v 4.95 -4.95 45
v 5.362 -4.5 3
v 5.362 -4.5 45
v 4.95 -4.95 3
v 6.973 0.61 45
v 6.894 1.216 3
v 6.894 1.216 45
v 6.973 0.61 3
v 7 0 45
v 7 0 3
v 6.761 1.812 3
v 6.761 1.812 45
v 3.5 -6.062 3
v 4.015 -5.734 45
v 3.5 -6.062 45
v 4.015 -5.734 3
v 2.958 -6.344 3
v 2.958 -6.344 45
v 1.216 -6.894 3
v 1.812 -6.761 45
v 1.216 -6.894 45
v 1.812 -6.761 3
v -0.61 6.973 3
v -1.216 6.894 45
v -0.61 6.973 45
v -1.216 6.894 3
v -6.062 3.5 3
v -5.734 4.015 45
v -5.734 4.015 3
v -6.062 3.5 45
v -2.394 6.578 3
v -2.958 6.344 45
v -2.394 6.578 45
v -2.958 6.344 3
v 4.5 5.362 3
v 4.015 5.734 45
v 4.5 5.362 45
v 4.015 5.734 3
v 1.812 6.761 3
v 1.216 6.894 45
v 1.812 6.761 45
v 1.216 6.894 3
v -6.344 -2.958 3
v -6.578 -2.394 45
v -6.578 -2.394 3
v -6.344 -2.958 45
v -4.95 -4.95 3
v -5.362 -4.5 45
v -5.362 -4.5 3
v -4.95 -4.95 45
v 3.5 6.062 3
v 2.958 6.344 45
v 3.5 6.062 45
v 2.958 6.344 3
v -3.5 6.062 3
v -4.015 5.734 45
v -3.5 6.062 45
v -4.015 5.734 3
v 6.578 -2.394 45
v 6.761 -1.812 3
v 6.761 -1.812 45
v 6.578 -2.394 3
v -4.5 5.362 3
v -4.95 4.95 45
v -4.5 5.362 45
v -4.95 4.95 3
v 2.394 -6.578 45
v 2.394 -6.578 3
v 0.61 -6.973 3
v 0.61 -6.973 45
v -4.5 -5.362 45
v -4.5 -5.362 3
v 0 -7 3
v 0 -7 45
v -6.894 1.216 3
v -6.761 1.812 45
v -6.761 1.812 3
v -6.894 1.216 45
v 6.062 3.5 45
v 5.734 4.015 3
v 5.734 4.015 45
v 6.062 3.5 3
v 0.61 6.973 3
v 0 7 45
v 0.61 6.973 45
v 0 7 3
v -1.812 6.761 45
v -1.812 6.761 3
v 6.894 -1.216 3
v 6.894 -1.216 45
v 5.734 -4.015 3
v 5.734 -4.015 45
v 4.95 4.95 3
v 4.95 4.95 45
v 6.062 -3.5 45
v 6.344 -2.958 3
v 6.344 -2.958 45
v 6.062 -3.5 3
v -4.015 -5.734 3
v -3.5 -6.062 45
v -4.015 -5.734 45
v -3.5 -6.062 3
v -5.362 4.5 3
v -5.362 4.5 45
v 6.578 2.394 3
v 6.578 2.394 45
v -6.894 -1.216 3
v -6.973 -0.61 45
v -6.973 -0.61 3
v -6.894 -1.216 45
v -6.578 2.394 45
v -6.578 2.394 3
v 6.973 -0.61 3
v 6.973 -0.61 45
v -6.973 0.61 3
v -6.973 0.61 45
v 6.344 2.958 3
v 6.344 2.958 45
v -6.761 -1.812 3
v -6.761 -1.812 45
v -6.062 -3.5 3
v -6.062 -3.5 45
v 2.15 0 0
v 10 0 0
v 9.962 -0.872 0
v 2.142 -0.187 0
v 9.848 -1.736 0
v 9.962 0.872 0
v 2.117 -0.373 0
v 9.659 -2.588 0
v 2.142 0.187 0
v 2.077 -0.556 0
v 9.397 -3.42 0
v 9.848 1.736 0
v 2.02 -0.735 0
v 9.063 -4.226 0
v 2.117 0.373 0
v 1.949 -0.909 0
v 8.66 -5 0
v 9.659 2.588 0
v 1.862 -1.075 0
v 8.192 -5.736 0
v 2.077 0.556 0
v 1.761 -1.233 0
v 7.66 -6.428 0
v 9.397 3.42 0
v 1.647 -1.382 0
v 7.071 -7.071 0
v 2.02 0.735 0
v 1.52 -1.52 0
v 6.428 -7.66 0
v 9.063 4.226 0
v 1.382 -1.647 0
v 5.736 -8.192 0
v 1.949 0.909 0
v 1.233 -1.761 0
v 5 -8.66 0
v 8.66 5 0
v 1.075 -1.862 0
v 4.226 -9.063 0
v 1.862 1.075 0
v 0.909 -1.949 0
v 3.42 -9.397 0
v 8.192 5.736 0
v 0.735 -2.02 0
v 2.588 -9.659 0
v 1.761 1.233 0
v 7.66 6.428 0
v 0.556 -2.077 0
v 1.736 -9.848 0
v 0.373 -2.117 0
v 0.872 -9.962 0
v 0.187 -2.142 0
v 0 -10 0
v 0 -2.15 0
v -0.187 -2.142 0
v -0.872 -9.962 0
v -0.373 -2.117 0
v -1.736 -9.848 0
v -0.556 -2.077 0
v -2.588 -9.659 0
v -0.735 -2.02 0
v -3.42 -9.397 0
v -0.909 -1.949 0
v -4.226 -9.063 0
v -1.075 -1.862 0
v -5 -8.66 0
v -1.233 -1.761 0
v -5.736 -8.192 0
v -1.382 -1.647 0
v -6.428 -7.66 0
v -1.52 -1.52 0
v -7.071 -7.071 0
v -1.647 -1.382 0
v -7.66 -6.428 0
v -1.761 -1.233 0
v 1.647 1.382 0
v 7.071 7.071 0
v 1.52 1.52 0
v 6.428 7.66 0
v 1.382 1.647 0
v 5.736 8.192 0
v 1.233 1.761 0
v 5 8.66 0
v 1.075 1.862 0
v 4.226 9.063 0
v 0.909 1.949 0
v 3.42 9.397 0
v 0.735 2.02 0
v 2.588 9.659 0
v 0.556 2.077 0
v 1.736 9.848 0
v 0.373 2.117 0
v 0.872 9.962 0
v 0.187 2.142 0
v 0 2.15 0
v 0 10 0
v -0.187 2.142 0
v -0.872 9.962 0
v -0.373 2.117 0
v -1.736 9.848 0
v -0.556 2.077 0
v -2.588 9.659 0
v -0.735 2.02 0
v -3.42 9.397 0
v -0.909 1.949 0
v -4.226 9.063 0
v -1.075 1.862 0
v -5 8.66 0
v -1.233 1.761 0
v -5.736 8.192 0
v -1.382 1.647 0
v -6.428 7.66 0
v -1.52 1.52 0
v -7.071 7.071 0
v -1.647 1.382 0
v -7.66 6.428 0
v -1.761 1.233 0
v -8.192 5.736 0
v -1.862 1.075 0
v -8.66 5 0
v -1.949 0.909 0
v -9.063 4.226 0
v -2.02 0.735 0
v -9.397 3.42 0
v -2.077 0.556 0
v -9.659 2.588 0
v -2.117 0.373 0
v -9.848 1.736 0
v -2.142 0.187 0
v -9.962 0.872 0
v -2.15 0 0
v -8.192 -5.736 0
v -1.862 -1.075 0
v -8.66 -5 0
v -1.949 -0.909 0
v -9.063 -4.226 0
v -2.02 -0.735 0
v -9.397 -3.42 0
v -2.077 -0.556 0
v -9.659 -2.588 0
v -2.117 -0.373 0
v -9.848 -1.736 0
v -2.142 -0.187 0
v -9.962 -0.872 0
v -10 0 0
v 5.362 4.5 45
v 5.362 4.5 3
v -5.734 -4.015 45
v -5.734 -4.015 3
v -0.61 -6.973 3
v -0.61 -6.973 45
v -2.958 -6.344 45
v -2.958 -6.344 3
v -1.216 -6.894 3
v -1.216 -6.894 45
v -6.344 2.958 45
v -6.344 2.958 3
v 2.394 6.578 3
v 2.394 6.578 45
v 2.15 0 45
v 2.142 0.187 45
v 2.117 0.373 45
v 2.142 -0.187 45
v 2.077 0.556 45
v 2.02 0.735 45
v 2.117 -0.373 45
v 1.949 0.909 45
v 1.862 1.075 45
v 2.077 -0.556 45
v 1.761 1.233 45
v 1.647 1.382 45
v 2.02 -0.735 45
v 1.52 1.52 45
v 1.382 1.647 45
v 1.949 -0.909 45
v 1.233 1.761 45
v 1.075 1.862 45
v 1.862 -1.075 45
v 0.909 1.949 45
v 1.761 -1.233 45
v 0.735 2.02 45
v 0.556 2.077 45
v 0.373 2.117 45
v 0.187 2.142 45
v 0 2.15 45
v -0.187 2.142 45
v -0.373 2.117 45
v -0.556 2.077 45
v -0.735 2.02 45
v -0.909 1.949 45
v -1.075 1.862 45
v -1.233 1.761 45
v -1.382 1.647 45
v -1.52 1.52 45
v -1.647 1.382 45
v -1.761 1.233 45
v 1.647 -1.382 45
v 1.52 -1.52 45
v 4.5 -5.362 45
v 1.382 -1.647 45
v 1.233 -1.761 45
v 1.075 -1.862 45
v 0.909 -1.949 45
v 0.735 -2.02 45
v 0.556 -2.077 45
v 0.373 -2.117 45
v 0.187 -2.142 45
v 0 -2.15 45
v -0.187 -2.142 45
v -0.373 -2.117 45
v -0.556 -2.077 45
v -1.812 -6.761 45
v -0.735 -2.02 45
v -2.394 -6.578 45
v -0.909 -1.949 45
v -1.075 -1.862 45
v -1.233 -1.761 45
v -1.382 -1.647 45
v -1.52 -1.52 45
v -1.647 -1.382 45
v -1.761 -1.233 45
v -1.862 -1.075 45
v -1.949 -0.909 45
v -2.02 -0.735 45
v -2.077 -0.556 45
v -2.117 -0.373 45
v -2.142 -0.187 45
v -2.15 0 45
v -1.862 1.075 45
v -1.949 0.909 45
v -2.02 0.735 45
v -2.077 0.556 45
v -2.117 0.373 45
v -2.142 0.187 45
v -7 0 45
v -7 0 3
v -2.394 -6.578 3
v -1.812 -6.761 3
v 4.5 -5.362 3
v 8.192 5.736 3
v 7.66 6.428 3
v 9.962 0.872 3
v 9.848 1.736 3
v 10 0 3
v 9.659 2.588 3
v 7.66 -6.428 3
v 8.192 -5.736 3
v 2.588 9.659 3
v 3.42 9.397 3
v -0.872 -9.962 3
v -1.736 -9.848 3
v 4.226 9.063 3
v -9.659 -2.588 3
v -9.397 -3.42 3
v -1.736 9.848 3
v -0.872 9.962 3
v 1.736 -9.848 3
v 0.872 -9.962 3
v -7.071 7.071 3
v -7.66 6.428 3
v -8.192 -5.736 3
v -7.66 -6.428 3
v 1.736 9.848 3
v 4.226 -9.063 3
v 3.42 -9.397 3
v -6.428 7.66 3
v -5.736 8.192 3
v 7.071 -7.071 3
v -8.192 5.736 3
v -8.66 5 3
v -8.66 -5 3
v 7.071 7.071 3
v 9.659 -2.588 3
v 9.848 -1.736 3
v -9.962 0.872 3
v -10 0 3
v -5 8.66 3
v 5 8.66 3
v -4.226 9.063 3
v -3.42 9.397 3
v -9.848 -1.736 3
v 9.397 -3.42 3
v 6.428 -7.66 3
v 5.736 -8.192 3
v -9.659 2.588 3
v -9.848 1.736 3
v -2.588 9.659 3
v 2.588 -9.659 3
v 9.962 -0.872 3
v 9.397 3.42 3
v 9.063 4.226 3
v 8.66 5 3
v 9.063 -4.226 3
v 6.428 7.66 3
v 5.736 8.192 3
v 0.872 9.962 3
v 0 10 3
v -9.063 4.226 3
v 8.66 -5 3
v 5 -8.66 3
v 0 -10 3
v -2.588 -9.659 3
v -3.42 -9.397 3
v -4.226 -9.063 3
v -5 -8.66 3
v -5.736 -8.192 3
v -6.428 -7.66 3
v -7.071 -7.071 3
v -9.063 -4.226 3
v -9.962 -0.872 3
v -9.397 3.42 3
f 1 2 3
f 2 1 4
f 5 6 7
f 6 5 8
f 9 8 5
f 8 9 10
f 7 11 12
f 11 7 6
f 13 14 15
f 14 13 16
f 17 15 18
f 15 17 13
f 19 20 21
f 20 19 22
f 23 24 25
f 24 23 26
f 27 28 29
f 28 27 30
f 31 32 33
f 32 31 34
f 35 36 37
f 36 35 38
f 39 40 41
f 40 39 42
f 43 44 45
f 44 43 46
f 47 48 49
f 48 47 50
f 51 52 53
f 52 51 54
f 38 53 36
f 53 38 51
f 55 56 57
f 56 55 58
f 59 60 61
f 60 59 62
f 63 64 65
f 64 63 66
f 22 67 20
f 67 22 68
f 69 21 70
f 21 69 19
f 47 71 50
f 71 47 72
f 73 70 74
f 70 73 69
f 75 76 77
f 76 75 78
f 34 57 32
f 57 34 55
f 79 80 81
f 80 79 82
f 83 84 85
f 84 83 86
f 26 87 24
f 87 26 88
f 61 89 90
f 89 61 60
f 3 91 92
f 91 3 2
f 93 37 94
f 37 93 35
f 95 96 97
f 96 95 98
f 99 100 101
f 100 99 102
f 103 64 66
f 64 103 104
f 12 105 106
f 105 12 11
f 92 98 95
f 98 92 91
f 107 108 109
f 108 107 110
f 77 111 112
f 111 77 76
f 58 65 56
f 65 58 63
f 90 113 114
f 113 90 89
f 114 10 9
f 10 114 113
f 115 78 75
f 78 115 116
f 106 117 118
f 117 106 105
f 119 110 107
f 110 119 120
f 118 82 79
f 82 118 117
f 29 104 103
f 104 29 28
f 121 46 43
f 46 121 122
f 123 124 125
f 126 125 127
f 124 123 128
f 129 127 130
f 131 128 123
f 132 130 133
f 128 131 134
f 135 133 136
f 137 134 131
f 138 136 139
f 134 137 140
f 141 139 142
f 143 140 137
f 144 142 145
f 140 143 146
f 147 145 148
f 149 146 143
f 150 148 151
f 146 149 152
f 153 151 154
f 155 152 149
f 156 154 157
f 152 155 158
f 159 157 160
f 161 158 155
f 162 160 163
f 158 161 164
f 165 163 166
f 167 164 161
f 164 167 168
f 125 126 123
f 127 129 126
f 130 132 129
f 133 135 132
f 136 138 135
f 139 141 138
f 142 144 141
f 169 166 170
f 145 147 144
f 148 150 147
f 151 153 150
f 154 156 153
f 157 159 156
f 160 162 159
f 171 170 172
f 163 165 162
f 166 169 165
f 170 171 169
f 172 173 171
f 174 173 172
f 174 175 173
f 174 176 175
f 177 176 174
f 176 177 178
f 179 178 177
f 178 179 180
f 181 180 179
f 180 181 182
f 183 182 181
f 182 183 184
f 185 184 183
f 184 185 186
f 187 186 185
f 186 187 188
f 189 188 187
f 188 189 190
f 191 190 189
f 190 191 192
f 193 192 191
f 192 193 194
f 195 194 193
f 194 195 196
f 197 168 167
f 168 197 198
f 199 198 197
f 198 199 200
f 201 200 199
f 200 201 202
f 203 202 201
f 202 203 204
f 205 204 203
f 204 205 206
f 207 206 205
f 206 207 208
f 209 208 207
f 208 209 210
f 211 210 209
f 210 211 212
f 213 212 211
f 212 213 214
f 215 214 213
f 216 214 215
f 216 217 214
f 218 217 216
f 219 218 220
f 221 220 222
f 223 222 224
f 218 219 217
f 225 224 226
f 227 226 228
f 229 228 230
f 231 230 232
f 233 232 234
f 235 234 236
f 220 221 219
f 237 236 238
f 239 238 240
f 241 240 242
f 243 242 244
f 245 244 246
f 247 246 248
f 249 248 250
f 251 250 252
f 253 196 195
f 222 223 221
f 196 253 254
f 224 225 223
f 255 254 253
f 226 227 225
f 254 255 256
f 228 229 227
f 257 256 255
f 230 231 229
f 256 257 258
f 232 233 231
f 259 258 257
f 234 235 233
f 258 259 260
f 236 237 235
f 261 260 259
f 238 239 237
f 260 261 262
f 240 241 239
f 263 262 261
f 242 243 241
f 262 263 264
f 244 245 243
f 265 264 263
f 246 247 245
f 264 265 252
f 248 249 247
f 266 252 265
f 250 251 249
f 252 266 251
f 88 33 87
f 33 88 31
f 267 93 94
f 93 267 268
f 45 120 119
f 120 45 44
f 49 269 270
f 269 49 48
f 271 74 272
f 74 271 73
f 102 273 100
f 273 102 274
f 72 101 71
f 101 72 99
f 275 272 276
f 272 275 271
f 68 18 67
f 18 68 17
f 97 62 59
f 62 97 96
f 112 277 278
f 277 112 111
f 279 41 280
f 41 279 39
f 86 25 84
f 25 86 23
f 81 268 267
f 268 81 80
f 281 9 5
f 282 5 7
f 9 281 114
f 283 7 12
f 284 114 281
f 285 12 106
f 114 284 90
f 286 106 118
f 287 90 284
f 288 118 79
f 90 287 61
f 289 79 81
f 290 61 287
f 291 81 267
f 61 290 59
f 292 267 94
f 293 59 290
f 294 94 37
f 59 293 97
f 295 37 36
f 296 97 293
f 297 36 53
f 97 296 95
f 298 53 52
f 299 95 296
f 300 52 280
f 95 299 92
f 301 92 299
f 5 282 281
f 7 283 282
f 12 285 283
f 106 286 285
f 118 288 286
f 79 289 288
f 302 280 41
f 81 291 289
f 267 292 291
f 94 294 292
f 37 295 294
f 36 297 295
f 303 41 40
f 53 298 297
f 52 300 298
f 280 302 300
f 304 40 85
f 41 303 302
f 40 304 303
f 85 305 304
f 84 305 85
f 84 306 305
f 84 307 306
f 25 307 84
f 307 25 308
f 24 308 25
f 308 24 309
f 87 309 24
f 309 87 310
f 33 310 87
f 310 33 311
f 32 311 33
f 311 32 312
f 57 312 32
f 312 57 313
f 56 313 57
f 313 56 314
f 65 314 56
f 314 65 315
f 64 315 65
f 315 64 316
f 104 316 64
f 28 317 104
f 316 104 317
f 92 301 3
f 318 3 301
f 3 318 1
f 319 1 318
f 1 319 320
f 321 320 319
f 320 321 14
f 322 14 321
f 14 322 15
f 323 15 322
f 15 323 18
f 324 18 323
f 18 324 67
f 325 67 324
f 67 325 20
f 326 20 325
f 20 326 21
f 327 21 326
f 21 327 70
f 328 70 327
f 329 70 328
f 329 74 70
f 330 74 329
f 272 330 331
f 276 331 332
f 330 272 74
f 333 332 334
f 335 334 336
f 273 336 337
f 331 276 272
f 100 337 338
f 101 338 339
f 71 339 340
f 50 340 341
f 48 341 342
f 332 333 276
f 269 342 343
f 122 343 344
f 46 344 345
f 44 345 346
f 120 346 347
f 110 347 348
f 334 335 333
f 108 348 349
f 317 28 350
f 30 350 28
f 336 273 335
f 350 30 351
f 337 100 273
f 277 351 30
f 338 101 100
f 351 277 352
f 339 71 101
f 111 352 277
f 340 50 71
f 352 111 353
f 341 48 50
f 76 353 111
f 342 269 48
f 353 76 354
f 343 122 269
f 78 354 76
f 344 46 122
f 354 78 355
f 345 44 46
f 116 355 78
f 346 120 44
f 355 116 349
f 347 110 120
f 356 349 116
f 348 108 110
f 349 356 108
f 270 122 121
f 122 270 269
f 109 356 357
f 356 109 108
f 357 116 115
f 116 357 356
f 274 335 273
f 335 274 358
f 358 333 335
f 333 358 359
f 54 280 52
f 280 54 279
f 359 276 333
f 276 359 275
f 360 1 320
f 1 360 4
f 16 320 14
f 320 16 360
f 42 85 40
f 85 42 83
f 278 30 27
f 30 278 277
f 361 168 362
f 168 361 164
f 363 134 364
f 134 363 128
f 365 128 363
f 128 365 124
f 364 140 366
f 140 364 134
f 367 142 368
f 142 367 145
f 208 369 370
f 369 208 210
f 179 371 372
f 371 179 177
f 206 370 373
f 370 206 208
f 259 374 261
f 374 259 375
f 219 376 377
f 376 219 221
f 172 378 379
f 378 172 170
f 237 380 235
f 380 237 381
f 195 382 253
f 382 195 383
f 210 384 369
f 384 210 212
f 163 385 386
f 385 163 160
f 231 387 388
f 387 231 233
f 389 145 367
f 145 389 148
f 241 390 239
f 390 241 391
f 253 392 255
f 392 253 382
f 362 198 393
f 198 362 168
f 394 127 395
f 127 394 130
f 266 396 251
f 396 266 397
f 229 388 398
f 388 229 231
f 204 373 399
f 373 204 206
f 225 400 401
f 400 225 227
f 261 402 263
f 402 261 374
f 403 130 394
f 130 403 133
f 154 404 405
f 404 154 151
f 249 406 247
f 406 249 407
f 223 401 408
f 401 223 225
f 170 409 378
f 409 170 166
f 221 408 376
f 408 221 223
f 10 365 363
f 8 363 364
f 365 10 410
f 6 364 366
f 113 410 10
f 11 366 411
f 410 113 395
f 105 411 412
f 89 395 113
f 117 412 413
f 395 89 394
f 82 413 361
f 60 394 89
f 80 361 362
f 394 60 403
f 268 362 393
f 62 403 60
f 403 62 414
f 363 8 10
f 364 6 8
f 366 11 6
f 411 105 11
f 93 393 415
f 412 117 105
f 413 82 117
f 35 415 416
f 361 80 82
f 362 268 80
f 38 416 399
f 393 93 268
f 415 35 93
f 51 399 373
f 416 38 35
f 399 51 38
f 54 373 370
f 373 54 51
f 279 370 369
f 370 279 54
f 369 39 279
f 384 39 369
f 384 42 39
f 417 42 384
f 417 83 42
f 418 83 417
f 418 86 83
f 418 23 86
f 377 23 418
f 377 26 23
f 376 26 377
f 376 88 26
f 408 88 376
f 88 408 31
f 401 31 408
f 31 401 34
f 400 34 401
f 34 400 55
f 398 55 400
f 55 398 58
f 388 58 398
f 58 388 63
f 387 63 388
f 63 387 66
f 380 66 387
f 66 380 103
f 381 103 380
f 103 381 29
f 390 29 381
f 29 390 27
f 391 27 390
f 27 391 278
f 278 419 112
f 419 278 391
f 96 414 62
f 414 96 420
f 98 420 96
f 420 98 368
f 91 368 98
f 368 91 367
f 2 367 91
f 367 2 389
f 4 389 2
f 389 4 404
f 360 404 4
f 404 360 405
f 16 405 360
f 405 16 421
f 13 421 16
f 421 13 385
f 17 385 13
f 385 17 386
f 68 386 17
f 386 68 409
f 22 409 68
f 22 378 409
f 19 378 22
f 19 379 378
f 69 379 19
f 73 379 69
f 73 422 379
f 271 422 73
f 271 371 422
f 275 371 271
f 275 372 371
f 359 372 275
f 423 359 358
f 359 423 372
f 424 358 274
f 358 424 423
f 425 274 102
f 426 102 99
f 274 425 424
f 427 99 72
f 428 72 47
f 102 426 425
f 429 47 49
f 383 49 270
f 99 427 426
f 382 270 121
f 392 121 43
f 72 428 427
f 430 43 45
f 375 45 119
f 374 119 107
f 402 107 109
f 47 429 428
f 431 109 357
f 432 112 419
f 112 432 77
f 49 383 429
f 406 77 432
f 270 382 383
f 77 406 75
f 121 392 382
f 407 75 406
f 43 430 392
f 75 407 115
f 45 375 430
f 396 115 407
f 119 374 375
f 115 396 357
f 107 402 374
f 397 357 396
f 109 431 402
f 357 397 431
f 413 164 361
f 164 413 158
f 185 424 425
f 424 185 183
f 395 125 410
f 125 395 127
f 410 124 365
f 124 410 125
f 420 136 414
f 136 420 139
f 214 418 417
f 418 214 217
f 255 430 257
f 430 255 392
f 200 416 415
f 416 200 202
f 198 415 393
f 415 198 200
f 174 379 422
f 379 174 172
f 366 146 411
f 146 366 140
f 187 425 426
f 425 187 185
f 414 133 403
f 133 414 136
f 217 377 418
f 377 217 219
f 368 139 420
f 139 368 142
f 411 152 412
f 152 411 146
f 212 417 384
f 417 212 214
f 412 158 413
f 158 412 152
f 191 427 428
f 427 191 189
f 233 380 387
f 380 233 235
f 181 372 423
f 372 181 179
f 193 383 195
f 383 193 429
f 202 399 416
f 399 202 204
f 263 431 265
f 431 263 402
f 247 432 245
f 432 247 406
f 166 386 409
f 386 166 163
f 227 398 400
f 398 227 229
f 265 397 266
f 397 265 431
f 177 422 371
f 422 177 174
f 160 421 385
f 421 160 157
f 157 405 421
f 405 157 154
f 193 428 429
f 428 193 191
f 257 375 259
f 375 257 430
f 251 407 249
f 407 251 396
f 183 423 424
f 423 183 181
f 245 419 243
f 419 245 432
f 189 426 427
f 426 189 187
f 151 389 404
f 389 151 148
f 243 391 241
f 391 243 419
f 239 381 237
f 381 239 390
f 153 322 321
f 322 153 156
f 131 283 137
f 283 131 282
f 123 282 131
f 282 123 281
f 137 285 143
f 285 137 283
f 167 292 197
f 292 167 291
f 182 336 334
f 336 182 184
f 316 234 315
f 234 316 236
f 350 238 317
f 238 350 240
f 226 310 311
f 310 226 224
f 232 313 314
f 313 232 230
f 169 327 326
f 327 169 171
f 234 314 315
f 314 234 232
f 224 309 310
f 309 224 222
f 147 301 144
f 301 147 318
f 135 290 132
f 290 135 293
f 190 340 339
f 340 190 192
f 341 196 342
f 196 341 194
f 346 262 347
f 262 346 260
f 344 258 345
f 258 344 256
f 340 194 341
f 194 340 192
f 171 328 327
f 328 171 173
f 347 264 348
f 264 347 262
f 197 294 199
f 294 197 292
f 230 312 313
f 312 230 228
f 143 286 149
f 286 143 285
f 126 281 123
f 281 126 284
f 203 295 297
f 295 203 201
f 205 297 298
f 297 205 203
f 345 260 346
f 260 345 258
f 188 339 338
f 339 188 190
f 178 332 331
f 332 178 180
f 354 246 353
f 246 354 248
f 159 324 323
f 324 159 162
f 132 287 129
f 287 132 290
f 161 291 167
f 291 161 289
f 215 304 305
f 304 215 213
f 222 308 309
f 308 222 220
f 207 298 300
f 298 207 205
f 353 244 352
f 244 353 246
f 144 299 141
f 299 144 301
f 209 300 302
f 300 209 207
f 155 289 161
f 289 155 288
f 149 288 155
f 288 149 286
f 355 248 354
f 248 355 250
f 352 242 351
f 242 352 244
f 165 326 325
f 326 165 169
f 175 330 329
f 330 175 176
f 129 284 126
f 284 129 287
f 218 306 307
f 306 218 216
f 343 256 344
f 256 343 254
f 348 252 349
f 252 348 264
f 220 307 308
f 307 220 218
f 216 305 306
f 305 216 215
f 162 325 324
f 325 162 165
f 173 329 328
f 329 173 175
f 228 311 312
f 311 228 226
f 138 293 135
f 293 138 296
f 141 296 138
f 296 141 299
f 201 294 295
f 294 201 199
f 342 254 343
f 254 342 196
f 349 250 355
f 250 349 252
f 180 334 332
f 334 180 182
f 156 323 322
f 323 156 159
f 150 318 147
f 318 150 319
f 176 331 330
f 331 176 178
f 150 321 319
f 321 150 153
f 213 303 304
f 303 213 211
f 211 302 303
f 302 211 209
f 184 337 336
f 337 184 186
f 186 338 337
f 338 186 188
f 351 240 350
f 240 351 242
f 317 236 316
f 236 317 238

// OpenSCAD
// file: parameters.scad
// AFPM-Desk-v4 PoleShoe shared parameters (mm)
// SSDR dual-rotor axial-flux PM learning generator:
// mild-steel back-iron + mild-steel pole shoes under each magnet.
// Faraday induction education only — not free-energy / overunity.
// Target: Anycubic Kobra 3 Max, 0.4 mm nozzle, 0.2 mm layers, PETG.

$fn = 72;

// --- Printer / FDM assumptions ---
nozzle = 0.4;
layer = 0.2;
wall = 1.6;                 // load-bearing ~4 perimeters
housing_wall = 2.4;
clearance_slip = 0.35;      // shaft slip fit
clearance_loose = 0.55;
press_interference = 0.15;  // bearing pocket undersize total (coupon-test)
magnet_pocket_xy = 0.25;    // +0.25 mm on diameter
magnet_pocket_z = 0.15;     // +0.15 mm depth
elephant_foot = 0.5;

// --- Magnets (N42 Neo discs) — Austin's Ø20×5 stock ---
magnet_d = 20;
magnet_h = 5;
magnet_count = 12;          // per rotor (12+12 total)
magnet_pcd = 90;            // center pitch; ~3.3 mm edge gap between discs

// --- Mild-steel pole shoes (flux concentrators under each magnet) ---
// Slightly smaller OD than magnet teaches concentration / reluctance.
pole_shoe_d = 18;
pole_shoe_h = 2.0;          // purchased mild-steel disc or punched blank
pole_shoe_pocket_xy = 0.30;
pole_shoe_pocket_z = 0.15;

// --- Steel back-iron (purchased mild steel disc behind pole-shoe ring) ---
steel_od = 118;
steel_id = 16;              // clearance around hub boss
steel_h = 1.5;              // 1.5–2.0 mm mild steel OK
steel_recess_clearance = 0.3;

// --- Rotor printed disc ---
rotor_od = 130;
rotor_hub_bore = 12;        // seats on shaft_hub boss
rotor_thickness = 11;       // magnet + pole shoe + plastic floor + steel recess
magnet_pocket_depth = magnet_h + magnet_pocket_z;
pole_shoe_pocket_depth = pole_shoe_h + pole_shoe_pocket_z;
steel_recess_depth = steel_h + 0.2;

// --- Stator (coreless, between rotors) — 9 coils for 3-phase ---
stator_od = 140;
stator_id = 30;
stator_thickness = 12;
coil_count = 9;
coil_slot_w = 22;
coil_slot_l = 28;           // radial length of pocket
coil_slot_depth = 10;
coil_pcd = 90;
stator_pillar_pcd = 118;    // M4 pillar holes

// --- Coil bobbin (stays in stator) ---
former_core_w = 16;
former_core_l = 24;
former_flange = 2.5;
former_wind_h = 9.2;        // fits coil_slot_depth - margin

// --- Shaft / bearings ---
shaft_d = 8;
bearing_od = 22;            // 608-2RS / 608ZZ
bearing_id = 8;
bearing_h = 7;
bearing_seat_od = bearing_od - press_interference; // ~21.85; coupon-test

// --- Base / frame ---
base_w = 200;
base_d = 180;
base_h = 8;
post_h = 78;
post_spacing = 145;         // Y distance between bearing post centers (thicker stack)
post_d = 36;

// --- Axial stack targets ---
// crank | brg | hub+rotorA+steel | air | stator | air | steel+rotorB+hub | brg
air_gap_nominal = 1.75;     // mechanical per side magnet↔coil face (1.5–2.0)

// --- Crank ---
crank_arm_len = 90;
crank_arm_w = 18;
crank_arm_t = 10;
handle_d = 14;
handle_len = 45;

// --- Electronics tray ---
tray_w = 80;
tray_d = 55;
tray_h = 14;

// --- Fasteners ---
m3_clear = 3.4;
m3_tap = 2.5;
m4_clear = 4.3;
// main file
include <parameters.scad>

module crank_handle() {
  difference() {
    union() {
      cylinder(h=handle_len, d=handle_d);
      cylinder(h=3, d=handle_d + 6);
    }
    translate([0,0,-0.1])
      cylinder(h=handle_len+0.2, d=m4_clear);
  }
}

crank_handle();
